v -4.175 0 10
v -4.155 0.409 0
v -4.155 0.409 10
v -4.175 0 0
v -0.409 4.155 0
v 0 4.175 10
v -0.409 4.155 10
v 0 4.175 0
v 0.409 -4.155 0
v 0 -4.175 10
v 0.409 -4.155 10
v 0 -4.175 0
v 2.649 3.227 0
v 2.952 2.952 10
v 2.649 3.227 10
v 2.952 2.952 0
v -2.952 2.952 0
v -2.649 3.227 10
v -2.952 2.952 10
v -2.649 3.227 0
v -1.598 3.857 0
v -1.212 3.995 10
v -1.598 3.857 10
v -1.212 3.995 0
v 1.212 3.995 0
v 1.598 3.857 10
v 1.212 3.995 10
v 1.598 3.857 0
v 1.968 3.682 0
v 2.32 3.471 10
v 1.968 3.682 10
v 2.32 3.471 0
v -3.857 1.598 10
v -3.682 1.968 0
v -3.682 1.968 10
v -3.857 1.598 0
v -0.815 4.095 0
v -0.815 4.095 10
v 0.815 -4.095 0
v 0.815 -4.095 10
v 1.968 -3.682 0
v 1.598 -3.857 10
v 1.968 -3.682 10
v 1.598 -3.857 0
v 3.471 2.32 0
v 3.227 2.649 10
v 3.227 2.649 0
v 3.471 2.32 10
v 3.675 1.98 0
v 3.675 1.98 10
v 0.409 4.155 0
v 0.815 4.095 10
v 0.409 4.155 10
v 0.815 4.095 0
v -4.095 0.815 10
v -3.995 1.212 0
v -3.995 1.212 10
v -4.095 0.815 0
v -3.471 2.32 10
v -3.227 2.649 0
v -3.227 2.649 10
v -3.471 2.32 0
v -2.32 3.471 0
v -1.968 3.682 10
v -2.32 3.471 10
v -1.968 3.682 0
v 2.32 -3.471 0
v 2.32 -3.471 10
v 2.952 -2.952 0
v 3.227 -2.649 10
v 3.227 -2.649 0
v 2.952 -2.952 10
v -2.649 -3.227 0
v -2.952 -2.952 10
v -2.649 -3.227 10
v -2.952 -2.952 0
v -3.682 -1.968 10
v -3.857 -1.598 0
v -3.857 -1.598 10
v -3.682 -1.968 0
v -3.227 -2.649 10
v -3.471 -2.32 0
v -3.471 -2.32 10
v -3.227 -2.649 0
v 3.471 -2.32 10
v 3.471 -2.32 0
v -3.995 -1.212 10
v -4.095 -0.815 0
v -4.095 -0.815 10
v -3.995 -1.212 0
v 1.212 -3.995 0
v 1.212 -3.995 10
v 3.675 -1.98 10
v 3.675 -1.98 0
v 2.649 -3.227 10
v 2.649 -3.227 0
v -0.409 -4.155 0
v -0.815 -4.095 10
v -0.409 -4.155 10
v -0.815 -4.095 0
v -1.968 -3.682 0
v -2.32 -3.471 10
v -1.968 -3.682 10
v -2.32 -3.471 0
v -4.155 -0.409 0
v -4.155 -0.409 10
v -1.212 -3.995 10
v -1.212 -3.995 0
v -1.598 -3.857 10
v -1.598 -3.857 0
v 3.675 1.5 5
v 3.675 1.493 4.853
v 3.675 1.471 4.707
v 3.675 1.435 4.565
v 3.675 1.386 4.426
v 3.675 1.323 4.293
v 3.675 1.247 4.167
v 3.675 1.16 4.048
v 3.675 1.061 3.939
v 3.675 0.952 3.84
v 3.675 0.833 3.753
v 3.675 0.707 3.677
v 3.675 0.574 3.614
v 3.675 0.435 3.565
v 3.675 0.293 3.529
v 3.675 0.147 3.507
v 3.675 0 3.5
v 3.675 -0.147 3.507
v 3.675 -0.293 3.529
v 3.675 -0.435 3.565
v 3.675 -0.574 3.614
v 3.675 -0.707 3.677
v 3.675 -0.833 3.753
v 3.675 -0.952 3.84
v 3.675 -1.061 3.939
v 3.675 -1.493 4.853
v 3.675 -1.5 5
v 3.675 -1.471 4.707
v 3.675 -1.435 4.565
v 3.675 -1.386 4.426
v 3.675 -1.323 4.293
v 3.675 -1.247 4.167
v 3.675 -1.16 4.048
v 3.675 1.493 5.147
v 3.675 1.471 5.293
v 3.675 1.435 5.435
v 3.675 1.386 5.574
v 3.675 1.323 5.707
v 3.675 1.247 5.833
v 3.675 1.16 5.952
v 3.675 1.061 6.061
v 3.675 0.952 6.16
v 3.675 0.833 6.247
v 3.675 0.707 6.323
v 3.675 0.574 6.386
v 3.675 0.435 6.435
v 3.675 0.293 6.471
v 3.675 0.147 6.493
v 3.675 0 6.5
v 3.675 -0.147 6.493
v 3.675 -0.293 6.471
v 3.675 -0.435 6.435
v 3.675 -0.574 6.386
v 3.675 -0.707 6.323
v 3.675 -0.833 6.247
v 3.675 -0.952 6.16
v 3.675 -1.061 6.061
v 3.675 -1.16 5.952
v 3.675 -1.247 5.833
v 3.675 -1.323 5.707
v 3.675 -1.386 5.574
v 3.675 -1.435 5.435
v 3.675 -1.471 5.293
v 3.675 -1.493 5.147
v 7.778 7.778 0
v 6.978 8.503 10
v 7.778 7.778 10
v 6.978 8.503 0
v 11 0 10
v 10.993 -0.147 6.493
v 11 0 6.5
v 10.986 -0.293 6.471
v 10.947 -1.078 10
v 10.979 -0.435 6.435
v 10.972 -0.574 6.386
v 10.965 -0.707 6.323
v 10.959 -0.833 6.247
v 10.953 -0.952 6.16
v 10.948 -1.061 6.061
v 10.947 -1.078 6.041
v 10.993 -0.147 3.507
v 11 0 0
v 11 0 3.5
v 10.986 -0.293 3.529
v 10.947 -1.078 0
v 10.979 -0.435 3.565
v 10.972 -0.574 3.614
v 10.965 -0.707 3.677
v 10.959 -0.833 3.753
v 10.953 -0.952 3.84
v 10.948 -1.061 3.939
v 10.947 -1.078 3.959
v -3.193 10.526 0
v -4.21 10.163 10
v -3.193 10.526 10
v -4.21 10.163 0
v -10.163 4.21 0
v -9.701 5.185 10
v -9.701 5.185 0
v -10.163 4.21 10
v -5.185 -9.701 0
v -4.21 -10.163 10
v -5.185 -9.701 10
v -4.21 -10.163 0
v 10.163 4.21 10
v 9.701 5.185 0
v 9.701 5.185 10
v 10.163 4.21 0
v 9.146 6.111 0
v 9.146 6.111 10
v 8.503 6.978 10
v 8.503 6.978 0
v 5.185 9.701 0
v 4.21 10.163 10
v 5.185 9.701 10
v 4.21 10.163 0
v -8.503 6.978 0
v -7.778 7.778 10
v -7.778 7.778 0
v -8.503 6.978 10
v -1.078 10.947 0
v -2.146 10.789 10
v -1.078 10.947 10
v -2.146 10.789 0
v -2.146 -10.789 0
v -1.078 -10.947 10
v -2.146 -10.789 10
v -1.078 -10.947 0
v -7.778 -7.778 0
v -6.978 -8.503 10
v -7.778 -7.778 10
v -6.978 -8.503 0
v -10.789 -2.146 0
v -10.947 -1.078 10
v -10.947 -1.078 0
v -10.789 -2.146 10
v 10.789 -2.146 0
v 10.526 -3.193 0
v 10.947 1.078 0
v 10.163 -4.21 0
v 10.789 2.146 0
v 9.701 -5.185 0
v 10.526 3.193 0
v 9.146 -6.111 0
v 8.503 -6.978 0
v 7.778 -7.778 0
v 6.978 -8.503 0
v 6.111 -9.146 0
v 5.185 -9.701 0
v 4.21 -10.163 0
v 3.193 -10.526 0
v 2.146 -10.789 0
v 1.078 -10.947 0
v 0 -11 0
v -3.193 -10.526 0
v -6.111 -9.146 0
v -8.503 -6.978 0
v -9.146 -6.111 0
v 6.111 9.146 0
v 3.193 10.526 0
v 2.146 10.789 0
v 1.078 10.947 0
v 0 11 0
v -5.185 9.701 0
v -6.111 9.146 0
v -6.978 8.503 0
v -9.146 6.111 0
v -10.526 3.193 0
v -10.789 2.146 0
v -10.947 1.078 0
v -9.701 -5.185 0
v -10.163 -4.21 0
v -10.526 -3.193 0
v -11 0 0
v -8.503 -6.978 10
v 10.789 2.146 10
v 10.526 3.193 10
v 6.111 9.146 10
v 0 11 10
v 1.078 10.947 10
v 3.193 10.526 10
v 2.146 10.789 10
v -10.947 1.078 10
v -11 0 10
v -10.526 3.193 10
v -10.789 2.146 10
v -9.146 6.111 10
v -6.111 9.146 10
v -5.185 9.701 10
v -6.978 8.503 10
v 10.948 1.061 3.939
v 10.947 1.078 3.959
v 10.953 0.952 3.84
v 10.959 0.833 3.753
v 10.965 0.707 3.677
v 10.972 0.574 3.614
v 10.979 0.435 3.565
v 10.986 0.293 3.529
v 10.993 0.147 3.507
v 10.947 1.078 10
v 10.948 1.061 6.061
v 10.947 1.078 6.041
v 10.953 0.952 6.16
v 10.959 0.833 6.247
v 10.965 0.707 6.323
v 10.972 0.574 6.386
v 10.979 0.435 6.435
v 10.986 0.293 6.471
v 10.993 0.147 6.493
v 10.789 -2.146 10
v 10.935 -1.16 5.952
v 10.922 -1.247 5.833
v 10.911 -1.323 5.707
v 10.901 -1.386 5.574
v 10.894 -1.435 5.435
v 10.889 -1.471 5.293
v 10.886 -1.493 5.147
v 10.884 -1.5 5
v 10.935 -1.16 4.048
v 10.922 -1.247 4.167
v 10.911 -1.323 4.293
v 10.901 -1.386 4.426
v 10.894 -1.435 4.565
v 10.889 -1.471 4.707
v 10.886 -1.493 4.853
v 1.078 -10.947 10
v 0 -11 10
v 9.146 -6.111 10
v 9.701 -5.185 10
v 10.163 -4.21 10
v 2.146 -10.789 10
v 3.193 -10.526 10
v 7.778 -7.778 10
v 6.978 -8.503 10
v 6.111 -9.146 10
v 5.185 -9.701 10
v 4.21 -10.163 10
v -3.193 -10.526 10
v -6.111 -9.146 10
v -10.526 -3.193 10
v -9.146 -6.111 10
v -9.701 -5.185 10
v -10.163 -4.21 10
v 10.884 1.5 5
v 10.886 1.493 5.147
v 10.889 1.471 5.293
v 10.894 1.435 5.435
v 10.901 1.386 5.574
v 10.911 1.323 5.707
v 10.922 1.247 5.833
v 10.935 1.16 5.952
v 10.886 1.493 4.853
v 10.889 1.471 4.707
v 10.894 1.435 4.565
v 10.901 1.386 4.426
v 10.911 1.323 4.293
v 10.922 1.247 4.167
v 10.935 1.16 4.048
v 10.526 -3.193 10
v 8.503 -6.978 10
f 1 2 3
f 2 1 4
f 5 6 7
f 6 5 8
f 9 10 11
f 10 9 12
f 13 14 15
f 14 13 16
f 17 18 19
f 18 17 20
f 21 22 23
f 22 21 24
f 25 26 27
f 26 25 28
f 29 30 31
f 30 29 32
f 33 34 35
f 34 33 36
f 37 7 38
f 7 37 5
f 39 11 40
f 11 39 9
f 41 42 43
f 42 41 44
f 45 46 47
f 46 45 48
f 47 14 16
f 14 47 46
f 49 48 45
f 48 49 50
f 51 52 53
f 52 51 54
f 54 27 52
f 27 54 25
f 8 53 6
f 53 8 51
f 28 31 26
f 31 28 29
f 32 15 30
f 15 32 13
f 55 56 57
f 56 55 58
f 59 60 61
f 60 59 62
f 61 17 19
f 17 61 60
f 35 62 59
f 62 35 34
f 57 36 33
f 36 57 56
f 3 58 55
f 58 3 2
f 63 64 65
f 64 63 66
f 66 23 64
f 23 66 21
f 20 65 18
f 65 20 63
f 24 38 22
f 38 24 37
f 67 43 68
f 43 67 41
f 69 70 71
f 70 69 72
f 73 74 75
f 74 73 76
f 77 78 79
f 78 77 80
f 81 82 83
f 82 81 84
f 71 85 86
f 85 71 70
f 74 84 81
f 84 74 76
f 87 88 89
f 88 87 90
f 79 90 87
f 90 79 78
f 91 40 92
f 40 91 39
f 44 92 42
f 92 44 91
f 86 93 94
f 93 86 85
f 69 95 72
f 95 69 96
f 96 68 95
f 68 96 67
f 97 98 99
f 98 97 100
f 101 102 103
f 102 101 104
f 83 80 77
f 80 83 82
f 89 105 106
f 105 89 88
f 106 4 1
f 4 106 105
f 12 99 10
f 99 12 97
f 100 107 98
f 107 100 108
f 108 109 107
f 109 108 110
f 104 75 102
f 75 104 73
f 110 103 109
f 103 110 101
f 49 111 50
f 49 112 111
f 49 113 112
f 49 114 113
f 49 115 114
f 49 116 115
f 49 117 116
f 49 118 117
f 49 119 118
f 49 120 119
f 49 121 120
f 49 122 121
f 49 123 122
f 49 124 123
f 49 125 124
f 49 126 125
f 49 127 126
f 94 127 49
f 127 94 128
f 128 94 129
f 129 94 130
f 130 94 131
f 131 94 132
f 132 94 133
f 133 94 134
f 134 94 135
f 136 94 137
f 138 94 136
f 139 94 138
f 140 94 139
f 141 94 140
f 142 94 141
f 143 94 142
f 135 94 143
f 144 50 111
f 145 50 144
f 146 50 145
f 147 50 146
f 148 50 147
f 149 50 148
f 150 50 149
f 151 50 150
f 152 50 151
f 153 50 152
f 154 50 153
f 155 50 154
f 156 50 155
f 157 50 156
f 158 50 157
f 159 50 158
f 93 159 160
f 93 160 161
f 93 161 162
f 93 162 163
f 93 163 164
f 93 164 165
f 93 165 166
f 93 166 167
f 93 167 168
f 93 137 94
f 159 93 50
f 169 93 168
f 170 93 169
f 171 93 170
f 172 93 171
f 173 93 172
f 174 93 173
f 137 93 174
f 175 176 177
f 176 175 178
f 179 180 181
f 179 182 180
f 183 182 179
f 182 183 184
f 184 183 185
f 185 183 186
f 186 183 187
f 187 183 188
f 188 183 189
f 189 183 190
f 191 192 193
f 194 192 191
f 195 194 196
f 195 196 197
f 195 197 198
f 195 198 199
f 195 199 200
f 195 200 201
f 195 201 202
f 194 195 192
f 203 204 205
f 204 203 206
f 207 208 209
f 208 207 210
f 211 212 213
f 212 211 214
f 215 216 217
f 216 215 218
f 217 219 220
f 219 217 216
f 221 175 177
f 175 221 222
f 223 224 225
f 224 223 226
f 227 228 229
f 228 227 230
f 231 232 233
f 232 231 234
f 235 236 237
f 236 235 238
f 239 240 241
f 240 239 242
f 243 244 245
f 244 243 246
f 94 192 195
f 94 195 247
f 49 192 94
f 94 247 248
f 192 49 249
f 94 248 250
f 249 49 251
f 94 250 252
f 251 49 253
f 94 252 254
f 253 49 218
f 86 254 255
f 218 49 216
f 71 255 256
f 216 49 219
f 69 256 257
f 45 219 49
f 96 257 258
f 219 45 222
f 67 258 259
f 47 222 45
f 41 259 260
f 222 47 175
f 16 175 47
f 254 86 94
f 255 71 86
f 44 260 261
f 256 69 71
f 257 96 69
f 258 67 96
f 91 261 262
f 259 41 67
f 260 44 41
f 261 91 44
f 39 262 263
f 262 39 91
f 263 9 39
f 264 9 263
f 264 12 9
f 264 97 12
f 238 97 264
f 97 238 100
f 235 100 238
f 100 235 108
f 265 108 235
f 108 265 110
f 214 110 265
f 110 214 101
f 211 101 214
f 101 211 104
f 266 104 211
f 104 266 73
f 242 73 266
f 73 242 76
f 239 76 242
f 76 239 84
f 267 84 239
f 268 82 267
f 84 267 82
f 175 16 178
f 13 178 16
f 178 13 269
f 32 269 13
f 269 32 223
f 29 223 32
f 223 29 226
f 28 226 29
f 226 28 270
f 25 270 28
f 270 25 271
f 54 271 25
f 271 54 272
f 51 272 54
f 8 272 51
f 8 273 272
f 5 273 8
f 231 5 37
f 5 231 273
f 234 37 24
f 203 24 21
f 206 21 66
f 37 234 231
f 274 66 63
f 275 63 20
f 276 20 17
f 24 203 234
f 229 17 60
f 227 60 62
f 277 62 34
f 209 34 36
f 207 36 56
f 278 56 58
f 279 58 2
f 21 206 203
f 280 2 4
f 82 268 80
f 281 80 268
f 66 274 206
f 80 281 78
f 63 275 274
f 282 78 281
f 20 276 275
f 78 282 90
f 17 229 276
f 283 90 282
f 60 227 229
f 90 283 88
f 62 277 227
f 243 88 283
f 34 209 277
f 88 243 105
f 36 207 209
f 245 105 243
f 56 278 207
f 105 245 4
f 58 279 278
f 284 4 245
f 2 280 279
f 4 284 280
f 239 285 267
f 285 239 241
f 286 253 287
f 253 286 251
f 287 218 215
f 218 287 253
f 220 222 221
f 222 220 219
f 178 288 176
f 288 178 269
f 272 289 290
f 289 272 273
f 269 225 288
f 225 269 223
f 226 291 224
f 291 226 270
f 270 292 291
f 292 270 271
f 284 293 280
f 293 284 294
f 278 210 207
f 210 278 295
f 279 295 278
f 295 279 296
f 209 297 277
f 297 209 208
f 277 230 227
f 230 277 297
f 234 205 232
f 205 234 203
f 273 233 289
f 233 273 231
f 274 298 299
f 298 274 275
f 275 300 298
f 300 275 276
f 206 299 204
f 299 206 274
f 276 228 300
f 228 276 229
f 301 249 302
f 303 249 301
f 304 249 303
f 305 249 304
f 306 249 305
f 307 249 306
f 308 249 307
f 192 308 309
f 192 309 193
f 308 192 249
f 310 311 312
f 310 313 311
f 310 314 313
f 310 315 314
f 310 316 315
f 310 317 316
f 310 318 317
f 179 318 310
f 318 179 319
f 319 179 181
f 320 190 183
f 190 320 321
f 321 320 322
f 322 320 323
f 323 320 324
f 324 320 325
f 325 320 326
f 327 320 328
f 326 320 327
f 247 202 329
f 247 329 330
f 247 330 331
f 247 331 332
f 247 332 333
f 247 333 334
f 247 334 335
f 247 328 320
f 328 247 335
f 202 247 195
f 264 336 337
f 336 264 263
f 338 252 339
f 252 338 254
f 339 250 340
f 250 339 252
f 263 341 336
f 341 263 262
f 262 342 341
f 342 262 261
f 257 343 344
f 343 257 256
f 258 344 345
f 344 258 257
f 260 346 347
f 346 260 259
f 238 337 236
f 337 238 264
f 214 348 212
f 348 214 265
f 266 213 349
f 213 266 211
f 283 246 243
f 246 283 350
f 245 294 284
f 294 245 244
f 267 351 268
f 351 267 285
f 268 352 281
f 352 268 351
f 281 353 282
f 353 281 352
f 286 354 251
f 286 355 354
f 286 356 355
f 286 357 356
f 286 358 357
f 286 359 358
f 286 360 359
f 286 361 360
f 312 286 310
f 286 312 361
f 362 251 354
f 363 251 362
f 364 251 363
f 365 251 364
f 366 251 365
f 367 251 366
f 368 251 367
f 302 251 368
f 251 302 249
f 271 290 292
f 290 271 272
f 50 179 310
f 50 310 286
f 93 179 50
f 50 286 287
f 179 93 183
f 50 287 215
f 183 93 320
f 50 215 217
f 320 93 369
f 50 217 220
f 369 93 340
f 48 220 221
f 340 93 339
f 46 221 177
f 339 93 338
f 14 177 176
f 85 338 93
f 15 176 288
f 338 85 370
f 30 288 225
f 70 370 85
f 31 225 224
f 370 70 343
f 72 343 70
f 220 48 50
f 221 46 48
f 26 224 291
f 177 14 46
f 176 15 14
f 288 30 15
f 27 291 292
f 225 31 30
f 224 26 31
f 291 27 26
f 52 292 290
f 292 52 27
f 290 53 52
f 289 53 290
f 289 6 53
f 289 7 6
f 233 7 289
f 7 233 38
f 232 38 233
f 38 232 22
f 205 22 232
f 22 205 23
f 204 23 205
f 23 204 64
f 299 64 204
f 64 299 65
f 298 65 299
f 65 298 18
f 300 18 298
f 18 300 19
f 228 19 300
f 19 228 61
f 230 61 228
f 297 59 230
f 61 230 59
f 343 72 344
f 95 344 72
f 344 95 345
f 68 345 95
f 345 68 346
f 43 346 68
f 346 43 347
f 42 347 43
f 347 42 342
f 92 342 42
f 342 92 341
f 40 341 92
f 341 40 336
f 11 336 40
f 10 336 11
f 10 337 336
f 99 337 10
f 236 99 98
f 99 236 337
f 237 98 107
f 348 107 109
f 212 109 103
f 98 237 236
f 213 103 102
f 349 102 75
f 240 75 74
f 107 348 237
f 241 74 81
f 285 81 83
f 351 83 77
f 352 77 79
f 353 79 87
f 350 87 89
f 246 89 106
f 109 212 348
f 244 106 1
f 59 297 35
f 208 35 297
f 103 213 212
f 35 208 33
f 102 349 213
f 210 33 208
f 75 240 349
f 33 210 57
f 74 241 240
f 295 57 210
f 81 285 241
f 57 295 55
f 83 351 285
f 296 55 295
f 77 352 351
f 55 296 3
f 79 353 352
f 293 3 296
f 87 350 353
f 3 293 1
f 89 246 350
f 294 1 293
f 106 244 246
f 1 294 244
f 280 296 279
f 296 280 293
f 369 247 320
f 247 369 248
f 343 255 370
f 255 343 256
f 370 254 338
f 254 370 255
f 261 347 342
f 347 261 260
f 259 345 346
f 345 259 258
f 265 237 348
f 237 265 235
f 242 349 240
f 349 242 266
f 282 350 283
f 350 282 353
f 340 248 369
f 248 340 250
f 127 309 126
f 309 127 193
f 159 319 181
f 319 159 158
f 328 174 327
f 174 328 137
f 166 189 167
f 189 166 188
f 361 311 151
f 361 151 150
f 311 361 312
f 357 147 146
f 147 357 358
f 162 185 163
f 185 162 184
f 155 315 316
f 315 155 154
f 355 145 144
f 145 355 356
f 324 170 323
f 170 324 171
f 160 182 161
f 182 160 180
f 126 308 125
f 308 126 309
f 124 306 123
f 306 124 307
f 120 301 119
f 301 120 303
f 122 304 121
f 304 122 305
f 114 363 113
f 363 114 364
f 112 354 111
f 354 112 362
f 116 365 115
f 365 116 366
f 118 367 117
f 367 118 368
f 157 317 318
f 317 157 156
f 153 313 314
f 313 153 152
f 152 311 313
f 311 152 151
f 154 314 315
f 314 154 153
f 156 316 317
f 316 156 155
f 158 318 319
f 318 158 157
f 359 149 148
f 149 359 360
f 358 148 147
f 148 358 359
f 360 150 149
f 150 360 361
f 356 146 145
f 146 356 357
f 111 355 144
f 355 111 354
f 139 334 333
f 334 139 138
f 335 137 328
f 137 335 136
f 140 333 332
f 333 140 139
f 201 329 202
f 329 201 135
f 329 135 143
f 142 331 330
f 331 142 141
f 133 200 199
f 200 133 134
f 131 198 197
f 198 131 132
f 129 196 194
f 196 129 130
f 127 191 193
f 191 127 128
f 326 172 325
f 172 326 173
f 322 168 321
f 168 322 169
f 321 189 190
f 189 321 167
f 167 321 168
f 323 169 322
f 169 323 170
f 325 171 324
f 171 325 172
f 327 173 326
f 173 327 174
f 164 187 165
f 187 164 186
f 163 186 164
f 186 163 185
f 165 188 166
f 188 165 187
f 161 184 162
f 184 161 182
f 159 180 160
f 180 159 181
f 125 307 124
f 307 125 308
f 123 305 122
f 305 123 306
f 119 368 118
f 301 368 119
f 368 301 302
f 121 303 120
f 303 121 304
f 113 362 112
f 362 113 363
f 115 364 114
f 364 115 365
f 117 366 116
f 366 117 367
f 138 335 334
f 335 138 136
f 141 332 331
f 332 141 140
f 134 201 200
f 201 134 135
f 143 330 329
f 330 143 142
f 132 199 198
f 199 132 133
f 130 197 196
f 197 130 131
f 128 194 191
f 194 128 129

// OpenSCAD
// file: parameters.scad
// =============================================================================
// Gen-BP — nightly 2026-10-07 (physics_scorer, honest magpylib watts)
// Cheapest upgrade of the champion: keep Gen-BL's wound bobbins, stator, gap sleeve, endbells and Ø134 steel, and print only two new rotor carriers — 5.00 mm thick (flush magnet seat, recess 0 instead of 0.10 mm, magnet→wound envelope still 0.50 mm) with the diametric Ø5 assists moved from R40/50/60 to R43/50/57. Modular: the rotor is the only swapped module.
// Clocking 0 deg (magnets N facing S) + D-flat keyed bore + index notch + flip-symmetric hole map.
// Windable 2-piece bobbin; turns = physics_scorer turns_fit; copper only between flanges.
// Steel back-iron: 2× Ø134 × 4.76 mm (3/16") mild-steel discs (steel_backiron_disc.dxf); magnets sit ON the steel
// (through-pockets) -> score with --back-iron.
// =============================================================================
topology            = "dual_rotor";

// --- Wire / winding (physics_scorer winding-fit) -------------------------------
wire_awg            = 26;
wire_od             = 0.45;     // insulated OD mm (bare 0.405)
fill_realistic      = 0.65;     // insulated-wire area / window (DENSE layered wind with a jig; scorer cap 0.65)
turns               = 566;       // = physics_scorer turns_fit (do NOT raise)
coil_former_type    = "bobbin";
coil_core_inset     = 17.10;     // radial copper build: hub = copper boundary inset by this
wind_build_axial    = 0.0;      // nothing proud of the flanges
wind_build_radial   = 0.0;

// --- Bobbin (base + lid) ---------------------------------------------------------
coil_id_r           = 29.00;    // copper boundary sector
coil_od_r           = 71.00;
span_deg            = 52.68;    // = pitch - 2*asin((wall+0.85)/coil_id_r) -> >=1.2 mm stator web
former_web          = 8.10;     // copper height between flanges (TALL copper: steel keeps Bz up)
flange_t            = 0.80;     // >= 0.8 mm FDM wall rule (tall winds push on the flanges)
wall                = 1.00;     // flange lip beyond copper
former_bare_h       = former_web + 2 * flange_t;
coil_envelope_h     = former_bare_h + 2 * wind_build_axial;
tab_w               = 7.0;
tab_len             = 7.0;
tab_h               = former_bare_h / 2;
pin_d               = 1.9;      // 1.75 mm filament locating pin
coil_mount_r        = coil_od_r + 0.2 + 4.0;
lead_y              = 1.6;
lead_slot_w         = 0.9;
lead_groove_d       = 0.6;

// --- Gap -------------------------------------------------------------------------
run_clear           = 0.50;     // rotor face -> flange
gap_spacer_h        = run_clear + wind_build_axial;
m2m                 = coil_envelope_h + 2 * run_clear;   // rotor face to rotor face (= gap_sleeve length)

// --- Stator ----------------------------------------------------------------------
coil_stations       = 6;
bay_clear           = 0.25;
stator_thick        = former_bare_h;                        // bobbins flush both faces
stator_od           = 160;
shaft_clear_stator  = 14.0;     // stator is static; gap sleeve OD 12 spins inside

// --- Rotor(s) --------------------------------------------------------------------
magnet_Br           = 1.43;     // N52
magnet_d_large      = 20.0;
magnet_h_large      = 5.0;      // one O20x5 per pocket
magnet_h_small      = 5.0;      // one O5x5 per pocket
halbach_magnetisation = "diametric"; // O5x5 assist magnets MUST be DIAMETRICALLY magnetised (tangential)
rotor_b_same_axis   = true;     // same-index magnets share one axis: N faces S across the gap
large_pocket_d      = 20.3;
small_pocket_d      = 5.3;
pocket_h            = 5.00;     // THROUGH the carrier: magnet back face sits on the steel disc (FLUSH seat: carrier = magnet height, magnet face level with the rotor face)
large_n             = 8;
R_large             = 50.0;
R_small_inner       = 43.0;
R_small_mid         = 50.0;
R_small_outer       = 57.0;
small_r_list        = [R_small_inner, R_small_mid, R_small_outer];   // O5 pockets between poles
carrier_od          = 134.0;
carrier_thick       = pocket_h;
hub_h               = 12.0;     // > steel_t + insert: radial set-screw clears the steel
hub_od              = 24.0;     // slim hub so the M4 brace rods fit at R~18 inside the coil ring
hub_insert_d        = 4.0;      // M3 heat-set insert, radial, bears on the D-flat
rotor_b_offset_deg  = 0.0;      // CLOCKING: magnets directly opposite
shaft_key           = "dflat";
dflat_depth         = 0.5;      // 8 mm shaft with 0.5 mm flat (7.5 across flat)
index_notch_d       = 3.0;

// --- Steel back-iron (buyable laser-cut) -------------------------------------------
steel_t             = 4.76;      // mild steel thickness (image method ignores it; sized from steel_flux.py so the return path stays well below saturation)
steel_center_hole   = 26.0;     // slips over the rotor hub (OD 24)
steel_od            = carrier_od;   // steel disc OD = rotor carrier OD

// --- Modular MAX interface ----------------------------------------------------------
shaft_bore          = 8.35;
dflat_x             = 4.0 - dflat_depth + (shaft_bore - 8.0) / 2;
bearing_d           = 21.85;
bearing_h           = 7.2;
m3_clear            = 3.5;
bolt_r_inner        = 30.0;     // M3 steel-disc clamp bolts (inside the magnet ring)
bolt_n_inner        = 4;
bolt_inner_angles   = [0, 90, 180, 270];
bolt_r_outer        = 63.0;     // M3 steel-disc clamp bolts (outside the magnet ring)
bolt_outer_angles   = [45, 135, 225, 315];
flange_bolt_r       = 73.0;     // frame rods: OUTSIDE the rotor OD (rotors spin inside them)
flange_bolt_n       = 6;
flange_bolt_offset  = 30.00;    // between coil stations -> never cuts a lead groove/tab
brace_r             = 18.0;
brace_d             = 4.3;      // temporary M4 jack rods (assembly only)
brace_n             = 4;
brace_angles        = [45, 135, 225, 315];          // flip-symmetric

spacer_pad_od       = 14.0;
spacer_pad_id       = m3_clear;
endbell_od          = 160;
endbell_thick       = 8.0;
endbell_shaft_clear = 10.0;
collar_h            = 10.0;
standoff_od         = 9.0;
frame_standoff_h    = run_clear + carrier_thick + hub_h + collar_h + 2.0;
sleeve_od           = 12.0;
plate_max_mm        = 410;

$fn = 64;
// main file
// Gen-BP — shaft collar with D-flat bore (set screw bears on the flat); print x4
include <parameters.scad>;
$fn = 64;
// D-flat keyed bore: flat faces +X (angle 0 = magnet pocket 0 = index notch)
module dflat_bore(h) {
    intersection() {
        cylinder(d=shaft_bore, h=h);
        translate([-shaft_bore, -shaft_bore, 0]) cube([shaft_bore + dflat_x, 2*shaft_bore, h]);
    }
}

od = 22; h = collar_h; set_d = 3.0;
difference() {
    cylinder(d=od, h=h);
    translate([0, 0, -0.1]) dflat_bore(h + 0.2);
    translate([0, 0, h/2]) rotate([0, 90, 0]) cylinder(d=set_d, h=od);
}
